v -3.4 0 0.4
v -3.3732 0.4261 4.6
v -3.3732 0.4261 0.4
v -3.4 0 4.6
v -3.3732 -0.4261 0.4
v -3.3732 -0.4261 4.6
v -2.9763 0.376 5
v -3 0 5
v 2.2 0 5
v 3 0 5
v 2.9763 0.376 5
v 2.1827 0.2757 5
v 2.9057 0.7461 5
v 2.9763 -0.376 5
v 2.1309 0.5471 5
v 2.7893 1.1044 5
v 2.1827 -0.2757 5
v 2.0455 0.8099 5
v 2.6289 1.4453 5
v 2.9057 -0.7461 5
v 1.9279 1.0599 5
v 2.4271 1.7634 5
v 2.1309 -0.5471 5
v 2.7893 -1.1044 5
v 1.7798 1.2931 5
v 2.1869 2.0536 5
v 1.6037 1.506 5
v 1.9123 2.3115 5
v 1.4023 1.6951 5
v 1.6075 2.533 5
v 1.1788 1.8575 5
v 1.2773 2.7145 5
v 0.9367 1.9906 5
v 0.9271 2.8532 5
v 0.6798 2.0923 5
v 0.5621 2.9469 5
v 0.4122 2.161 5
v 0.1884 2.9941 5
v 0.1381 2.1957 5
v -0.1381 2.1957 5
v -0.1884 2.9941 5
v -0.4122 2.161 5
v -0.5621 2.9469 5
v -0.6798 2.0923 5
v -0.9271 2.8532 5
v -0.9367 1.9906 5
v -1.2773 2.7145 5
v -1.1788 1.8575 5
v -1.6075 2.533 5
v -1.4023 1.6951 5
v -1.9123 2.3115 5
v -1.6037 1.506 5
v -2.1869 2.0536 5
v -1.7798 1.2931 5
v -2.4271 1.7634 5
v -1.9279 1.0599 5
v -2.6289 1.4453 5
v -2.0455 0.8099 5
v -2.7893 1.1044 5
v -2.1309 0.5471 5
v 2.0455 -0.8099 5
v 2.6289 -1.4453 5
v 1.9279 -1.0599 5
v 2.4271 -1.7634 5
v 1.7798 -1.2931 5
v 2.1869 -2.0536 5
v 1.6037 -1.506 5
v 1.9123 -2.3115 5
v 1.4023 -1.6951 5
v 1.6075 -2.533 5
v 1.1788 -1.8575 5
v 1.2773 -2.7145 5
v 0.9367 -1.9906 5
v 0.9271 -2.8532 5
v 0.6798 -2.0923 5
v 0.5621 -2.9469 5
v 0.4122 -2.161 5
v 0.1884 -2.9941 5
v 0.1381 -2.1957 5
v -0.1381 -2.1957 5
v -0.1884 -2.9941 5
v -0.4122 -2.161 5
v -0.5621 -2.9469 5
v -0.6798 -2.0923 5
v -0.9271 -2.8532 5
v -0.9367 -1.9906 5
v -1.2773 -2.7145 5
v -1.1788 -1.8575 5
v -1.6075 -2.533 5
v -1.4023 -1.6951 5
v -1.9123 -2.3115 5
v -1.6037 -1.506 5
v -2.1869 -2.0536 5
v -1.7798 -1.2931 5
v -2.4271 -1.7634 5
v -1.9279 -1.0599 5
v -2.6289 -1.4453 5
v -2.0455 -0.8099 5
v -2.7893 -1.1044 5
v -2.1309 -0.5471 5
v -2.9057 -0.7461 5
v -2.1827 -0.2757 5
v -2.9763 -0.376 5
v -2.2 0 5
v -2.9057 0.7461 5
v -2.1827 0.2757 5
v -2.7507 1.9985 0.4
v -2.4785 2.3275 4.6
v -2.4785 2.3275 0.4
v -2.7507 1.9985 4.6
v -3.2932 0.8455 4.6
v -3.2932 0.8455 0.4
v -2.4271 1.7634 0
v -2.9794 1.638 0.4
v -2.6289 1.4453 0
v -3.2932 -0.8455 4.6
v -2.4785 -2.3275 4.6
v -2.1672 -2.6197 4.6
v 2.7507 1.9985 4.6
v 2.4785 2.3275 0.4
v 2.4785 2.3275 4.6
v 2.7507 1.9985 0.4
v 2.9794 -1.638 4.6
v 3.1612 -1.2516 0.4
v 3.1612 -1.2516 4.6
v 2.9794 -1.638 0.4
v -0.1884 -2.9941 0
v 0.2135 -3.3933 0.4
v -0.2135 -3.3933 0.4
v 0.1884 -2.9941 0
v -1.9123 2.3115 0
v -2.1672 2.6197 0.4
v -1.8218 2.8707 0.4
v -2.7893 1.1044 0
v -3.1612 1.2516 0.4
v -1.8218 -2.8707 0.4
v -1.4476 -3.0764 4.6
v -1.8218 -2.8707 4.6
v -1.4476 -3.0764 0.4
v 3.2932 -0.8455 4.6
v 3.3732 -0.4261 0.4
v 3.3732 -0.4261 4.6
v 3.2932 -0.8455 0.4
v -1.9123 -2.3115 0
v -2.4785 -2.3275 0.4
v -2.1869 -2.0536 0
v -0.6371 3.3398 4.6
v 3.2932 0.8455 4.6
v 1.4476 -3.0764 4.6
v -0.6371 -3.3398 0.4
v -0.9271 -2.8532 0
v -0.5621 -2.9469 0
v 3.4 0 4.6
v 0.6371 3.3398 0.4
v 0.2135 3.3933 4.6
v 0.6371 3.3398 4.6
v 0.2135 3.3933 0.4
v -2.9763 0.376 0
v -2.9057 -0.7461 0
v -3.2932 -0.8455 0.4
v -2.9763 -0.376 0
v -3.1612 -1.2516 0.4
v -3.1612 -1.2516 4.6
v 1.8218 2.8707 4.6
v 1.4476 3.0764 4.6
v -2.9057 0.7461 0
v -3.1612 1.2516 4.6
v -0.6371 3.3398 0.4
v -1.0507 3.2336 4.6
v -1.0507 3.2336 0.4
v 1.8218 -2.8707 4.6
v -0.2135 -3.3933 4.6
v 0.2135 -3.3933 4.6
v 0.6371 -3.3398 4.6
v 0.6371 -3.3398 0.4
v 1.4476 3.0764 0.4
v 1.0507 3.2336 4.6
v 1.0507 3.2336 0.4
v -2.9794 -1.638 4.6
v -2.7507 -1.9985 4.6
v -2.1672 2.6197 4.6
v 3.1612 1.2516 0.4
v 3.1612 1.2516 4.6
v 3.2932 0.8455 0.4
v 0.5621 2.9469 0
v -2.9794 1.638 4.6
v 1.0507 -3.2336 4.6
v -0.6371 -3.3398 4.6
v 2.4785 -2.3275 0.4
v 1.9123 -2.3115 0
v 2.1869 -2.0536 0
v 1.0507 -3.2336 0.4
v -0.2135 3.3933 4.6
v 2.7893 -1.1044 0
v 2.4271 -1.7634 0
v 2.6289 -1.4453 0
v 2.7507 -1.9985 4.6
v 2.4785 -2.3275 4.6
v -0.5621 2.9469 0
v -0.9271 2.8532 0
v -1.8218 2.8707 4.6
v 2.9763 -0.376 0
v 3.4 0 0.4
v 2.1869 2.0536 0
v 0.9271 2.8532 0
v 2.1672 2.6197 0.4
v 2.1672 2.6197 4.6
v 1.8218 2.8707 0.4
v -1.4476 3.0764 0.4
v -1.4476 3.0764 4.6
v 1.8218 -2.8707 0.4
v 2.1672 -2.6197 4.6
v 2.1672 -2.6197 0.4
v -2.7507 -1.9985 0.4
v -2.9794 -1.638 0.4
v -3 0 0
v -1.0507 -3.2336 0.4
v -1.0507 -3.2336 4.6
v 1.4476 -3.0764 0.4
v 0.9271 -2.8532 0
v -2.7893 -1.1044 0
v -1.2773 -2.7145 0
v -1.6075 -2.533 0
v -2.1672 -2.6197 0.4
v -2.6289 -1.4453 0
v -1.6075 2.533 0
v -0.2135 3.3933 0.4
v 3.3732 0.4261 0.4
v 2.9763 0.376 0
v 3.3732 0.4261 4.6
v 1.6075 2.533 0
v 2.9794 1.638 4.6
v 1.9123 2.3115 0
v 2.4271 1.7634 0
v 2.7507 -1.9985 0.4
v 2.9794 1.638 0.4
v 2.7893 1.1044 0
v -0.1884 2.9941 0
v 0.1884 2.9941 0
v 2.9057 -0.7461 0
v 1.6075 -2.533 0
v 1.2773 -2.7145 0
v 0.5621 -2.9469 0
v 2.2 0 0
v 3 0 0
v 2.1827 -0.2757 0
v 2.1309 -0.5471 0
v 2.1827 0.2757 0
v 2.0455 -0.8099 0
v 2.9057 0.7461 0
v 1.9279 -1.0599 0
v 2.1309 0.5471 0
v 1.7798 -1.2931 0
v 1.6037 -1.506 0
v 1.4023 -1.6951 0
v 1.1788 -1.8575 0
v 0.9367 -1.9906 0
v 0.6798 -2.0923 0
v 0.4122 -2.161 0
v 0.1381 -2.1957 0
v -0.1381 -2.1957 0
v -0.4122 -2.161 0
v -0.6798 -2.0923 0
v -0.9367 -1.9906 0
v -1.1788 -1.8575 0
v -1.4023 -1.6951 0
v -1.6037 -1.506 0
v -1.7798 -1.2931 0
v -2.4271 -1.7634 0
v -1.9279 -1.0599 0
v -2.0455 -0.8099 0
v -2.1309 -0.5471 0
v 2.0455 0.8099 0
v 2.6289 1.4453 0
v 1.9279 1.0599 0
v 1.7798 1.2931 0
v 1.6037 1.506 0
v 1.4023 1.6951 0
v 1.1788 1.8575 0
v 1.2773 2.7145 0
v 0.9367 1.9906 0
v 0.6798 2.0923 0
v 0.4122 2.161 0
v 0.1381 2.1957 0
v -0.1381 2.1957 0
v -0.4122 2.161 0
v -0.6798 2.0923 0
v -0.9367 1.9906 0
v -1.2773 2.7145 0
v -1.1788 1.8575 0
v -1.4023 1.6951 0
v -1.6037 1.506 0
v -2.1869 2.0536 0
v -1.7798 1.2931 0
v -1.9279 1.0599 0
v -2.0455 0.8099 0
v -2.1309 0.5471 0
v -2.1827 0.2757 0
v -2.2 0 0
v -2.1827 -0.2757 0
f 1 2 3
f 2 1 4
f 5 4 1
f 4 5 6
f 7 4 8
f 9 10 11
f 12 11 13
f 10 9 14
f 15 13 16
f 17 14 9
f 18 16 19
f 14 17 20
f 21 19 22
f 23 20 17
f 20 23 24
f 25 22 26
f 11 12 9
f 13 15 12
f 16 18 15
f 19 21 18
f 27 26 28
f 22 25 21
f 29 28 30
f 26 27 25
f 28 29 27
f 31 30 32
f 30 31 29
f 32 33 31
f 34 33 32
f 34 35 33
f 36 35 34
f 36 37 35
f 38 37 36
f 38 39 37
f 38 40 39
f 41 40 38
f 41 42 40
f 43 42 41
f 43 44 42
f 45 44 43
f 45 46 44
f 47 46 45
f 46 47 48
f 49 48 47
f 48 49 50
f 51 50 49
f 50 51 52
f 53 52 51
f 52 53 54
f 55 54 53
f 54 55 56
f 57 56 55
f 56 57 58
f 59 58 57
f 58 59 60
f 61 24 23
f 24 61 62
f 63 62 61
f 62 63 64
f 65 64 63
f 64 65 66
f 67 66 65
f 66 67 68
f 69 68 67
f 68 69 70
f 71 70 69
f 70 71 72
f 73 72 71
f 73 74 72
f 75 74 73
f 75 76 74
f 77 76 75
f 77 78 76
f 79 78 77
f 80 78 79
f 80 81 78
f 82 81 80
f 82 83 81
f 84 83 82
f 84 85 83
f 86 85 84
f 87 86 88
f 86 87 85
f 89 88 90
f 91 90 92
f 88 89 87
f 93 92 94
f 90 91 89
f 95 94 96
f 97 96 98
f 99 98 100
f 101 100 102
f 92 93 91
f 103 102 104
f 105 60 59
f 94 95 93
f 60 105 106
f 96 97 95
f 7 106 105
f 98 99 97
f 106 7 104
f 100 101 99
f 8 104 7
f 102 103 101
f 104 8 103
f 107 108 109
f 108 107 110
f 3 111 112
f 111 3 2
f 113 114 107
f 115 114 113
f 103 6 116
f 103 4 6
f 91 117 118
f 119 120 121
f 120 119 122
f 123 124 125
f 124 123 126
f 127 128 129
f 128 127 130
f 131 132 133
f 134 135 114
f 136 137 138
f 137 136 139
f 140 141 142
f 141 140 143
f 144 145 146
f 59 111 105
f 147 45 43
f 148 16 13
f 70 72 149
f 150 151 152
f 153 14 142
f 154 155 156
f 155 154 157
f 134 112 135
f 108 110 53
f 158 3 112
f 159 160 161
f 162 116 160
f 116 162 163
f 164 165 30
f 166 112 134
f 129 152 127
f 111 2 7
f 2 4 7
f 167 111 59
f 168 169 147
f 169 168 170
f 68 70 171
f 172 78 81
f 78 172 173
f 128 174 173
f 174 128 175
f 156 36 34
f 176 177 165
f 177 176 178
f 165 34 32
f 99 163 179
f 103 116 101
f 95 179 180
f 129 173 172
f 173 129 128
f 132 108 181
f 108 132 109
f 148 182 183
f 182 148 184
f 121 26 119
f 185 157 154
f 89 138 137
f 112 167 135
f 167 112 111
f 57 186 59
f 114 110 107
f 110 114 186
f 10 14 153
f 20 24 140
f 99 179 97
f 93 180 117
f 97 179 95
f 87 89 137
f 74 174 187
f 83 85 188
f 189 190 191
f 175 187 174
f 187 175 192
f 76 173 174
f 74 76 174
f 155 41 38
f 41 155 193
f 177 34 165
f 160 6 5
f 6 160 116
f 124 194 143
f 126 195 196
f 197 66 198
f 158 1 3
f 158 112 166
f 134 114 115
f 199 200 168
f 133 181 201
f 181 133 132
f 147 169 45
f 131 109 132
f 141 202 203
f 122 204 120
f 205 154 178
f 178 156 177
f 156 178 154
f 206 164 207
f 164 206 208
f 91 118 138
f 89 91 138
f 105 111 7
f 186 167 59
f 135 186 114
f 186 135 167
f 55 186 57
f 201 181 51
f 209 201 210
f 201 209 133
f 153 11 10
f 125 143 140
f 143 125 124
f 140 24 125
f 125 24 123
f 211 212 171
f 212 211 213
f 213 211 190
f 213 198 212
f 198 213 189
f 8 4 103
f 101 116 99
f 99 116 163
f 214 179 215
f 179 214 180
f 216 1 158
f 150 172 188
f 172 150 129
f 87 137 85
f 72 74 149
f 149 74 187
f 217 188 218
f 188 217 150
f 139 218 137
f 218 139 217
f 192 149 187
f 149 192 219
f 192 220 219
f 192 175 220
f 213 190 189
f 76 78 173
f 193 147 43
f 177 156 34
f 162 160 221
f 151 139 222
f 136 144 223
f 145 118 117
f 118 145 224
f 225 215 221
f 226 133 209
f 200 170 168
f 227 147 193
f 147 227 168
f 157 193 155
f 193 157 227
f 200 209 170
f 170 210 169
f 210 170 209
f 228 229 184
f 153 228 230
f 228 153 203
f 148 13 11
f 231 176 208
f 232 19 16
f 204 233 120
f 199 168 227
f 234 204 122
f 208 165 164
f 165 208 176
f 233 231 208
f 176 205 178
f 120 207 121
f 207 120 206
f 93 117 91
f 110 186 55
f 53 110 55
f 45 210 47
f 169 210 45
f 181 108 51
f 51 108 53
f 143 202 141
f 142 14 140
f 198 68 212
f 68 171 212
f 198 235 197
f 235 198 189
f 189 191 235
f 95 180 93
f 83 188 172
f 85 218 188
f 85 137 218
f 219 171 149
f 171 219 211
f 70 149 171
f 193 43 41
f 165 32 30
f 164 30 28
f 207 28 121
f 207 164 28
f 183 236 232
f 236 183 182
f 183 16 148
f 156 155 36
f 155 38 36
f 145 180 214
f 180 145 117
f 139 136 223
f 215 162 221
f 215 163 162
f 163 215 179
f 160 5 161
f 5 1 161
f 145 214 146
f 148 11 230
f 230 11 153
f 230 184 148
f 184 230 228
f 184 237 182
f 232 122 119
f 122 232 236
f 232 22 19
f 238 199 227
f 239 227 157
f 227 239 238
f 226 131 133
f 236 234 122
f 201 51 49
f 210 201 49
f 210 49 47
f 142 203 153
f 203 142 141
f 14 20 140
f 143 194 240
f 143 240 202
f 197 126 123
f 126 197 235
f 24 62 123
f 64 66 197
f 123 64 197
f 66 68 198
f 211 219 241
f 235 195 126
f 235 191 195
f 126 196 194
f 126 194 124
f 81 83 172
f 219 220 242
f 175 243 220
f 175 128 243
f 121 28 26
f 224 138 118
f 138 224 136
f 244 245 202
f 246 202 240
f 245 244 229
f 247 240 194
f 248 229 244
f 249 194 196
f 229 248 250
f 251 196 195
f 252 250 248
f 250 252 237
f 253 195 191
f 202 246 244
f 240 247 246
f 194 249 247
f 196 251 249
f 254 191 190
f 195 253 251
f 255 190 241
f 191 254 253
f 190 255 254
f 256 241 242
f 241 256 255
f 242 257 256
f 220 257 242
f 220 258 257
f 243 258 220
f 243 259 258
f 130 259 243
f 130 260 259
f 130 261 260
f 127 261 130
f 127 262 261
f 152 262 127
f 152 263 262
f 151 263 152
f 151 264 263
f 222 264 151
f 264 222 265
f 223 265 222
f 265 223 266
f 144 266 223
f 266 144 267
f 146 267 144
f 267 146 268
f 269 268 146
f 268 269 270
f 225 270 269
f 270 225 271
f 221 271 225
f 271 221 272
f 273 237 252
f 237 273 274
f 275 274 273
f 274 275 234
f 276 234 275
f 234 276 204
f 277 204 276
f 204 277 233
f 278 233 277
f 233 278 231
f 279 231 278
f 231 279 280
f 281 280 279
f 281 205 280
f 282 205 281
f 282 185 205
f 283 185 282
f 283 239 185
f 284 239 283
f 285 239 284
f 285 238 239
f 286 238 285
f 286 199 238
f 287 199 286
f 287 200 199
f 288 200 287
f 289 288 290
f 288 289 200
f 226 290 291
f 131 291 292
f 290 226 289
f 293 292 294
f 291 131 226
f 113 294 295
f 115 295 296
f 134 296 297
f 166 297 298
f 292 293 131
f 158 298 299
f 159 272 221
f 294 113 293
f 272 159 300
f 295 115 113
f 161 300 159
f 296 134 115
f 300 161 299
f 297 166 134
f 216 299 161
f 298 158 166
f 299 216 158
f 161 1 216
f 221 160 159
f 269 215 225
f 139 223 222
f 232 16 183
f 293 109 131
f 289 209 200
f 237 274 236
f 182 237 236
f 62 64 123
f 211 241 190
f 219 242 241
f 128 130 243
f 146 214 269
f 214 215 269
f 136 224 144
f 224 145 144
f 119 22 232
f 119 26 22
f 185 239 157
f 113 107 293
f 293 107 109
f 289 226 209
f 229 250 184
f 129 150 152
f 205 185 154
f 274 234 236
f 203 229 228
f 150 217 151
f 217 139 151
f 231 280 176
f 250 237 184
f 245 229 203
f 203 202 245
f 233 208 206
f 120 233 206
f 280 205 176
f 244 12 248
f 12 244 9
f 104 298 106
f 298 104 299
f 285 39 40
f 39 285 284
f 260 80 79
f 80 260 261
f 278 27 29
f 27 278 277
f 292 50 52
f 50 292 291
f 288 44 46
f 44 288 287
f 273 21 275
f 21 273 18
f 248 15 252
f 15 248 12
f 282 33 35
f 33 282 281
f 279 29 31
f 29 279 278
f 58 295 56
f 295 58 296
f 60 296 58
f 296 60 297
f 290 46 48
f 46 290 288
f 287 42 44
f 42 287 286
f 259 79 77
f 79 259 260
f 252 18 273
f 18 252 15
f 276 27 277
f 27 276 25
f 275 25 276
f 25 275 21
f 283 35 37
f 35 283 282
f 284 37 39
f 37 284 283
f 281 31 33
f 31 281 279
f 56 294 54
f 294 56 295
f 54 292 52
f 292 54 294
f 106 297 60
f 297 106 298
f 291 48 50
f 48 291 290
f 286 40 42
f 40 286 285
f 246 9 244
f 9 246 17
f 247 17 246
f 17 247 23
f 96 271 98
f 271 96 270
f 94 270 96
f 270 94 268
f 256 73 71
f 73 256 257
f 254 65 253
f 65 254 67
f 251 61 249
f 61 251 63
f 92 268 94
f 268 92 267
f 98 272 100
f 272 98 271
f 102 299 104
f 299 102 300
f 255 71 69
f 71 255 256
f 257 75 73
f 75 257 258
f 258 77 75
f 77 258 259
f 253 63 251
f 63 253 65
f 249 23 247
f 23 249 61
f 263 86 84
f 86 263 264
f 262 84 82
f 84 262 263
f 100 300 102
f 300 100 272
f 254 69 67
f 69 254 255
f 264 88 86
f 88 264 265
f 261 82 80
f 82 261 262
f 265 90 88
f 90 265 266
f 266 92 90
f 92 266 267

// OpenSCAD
$fn = 50;

height = 5;
radius = 2.4;

difference() {
  rotate_extrude() {
    polygon(
      [
        [0, 0],
        [radius + .6, 0],
        [radius + 1, .4],
        [radius + 1, height - .4],
        [radius + .6, height],
        [0, height],
      ]
    );
  }
  cylinder(r=radius - .2, h=height);
}
